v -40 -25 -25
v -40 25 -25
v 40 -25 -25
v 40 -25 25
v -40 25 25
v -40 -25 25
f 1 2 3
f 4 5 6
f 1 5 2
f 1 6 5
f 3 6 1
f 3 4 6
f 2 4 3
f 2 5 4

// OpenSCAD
// file: _common.scad
// orthographic 共用尺寸 / 解析度設定
// 所有物件外接立方控制在 ~80 mm，方便相機固定縮放
$fn = 64;  // 圓面解析度（影響 STL 大小，64 在視覺與大小取得平衡）
CHAMFER = 1.2;  // 標準導角尺寸
// main file
// 楔形塊：三角柱（直角三角形拉伸）
// 截面：直角邊長 80、高度 50；深度 50
include <_common.scad>

translate([0, 0, -25]) linear_extrude(height = 50)
  polygon(points = [[-40, -25], [40, -25], [-40, 25]]);
